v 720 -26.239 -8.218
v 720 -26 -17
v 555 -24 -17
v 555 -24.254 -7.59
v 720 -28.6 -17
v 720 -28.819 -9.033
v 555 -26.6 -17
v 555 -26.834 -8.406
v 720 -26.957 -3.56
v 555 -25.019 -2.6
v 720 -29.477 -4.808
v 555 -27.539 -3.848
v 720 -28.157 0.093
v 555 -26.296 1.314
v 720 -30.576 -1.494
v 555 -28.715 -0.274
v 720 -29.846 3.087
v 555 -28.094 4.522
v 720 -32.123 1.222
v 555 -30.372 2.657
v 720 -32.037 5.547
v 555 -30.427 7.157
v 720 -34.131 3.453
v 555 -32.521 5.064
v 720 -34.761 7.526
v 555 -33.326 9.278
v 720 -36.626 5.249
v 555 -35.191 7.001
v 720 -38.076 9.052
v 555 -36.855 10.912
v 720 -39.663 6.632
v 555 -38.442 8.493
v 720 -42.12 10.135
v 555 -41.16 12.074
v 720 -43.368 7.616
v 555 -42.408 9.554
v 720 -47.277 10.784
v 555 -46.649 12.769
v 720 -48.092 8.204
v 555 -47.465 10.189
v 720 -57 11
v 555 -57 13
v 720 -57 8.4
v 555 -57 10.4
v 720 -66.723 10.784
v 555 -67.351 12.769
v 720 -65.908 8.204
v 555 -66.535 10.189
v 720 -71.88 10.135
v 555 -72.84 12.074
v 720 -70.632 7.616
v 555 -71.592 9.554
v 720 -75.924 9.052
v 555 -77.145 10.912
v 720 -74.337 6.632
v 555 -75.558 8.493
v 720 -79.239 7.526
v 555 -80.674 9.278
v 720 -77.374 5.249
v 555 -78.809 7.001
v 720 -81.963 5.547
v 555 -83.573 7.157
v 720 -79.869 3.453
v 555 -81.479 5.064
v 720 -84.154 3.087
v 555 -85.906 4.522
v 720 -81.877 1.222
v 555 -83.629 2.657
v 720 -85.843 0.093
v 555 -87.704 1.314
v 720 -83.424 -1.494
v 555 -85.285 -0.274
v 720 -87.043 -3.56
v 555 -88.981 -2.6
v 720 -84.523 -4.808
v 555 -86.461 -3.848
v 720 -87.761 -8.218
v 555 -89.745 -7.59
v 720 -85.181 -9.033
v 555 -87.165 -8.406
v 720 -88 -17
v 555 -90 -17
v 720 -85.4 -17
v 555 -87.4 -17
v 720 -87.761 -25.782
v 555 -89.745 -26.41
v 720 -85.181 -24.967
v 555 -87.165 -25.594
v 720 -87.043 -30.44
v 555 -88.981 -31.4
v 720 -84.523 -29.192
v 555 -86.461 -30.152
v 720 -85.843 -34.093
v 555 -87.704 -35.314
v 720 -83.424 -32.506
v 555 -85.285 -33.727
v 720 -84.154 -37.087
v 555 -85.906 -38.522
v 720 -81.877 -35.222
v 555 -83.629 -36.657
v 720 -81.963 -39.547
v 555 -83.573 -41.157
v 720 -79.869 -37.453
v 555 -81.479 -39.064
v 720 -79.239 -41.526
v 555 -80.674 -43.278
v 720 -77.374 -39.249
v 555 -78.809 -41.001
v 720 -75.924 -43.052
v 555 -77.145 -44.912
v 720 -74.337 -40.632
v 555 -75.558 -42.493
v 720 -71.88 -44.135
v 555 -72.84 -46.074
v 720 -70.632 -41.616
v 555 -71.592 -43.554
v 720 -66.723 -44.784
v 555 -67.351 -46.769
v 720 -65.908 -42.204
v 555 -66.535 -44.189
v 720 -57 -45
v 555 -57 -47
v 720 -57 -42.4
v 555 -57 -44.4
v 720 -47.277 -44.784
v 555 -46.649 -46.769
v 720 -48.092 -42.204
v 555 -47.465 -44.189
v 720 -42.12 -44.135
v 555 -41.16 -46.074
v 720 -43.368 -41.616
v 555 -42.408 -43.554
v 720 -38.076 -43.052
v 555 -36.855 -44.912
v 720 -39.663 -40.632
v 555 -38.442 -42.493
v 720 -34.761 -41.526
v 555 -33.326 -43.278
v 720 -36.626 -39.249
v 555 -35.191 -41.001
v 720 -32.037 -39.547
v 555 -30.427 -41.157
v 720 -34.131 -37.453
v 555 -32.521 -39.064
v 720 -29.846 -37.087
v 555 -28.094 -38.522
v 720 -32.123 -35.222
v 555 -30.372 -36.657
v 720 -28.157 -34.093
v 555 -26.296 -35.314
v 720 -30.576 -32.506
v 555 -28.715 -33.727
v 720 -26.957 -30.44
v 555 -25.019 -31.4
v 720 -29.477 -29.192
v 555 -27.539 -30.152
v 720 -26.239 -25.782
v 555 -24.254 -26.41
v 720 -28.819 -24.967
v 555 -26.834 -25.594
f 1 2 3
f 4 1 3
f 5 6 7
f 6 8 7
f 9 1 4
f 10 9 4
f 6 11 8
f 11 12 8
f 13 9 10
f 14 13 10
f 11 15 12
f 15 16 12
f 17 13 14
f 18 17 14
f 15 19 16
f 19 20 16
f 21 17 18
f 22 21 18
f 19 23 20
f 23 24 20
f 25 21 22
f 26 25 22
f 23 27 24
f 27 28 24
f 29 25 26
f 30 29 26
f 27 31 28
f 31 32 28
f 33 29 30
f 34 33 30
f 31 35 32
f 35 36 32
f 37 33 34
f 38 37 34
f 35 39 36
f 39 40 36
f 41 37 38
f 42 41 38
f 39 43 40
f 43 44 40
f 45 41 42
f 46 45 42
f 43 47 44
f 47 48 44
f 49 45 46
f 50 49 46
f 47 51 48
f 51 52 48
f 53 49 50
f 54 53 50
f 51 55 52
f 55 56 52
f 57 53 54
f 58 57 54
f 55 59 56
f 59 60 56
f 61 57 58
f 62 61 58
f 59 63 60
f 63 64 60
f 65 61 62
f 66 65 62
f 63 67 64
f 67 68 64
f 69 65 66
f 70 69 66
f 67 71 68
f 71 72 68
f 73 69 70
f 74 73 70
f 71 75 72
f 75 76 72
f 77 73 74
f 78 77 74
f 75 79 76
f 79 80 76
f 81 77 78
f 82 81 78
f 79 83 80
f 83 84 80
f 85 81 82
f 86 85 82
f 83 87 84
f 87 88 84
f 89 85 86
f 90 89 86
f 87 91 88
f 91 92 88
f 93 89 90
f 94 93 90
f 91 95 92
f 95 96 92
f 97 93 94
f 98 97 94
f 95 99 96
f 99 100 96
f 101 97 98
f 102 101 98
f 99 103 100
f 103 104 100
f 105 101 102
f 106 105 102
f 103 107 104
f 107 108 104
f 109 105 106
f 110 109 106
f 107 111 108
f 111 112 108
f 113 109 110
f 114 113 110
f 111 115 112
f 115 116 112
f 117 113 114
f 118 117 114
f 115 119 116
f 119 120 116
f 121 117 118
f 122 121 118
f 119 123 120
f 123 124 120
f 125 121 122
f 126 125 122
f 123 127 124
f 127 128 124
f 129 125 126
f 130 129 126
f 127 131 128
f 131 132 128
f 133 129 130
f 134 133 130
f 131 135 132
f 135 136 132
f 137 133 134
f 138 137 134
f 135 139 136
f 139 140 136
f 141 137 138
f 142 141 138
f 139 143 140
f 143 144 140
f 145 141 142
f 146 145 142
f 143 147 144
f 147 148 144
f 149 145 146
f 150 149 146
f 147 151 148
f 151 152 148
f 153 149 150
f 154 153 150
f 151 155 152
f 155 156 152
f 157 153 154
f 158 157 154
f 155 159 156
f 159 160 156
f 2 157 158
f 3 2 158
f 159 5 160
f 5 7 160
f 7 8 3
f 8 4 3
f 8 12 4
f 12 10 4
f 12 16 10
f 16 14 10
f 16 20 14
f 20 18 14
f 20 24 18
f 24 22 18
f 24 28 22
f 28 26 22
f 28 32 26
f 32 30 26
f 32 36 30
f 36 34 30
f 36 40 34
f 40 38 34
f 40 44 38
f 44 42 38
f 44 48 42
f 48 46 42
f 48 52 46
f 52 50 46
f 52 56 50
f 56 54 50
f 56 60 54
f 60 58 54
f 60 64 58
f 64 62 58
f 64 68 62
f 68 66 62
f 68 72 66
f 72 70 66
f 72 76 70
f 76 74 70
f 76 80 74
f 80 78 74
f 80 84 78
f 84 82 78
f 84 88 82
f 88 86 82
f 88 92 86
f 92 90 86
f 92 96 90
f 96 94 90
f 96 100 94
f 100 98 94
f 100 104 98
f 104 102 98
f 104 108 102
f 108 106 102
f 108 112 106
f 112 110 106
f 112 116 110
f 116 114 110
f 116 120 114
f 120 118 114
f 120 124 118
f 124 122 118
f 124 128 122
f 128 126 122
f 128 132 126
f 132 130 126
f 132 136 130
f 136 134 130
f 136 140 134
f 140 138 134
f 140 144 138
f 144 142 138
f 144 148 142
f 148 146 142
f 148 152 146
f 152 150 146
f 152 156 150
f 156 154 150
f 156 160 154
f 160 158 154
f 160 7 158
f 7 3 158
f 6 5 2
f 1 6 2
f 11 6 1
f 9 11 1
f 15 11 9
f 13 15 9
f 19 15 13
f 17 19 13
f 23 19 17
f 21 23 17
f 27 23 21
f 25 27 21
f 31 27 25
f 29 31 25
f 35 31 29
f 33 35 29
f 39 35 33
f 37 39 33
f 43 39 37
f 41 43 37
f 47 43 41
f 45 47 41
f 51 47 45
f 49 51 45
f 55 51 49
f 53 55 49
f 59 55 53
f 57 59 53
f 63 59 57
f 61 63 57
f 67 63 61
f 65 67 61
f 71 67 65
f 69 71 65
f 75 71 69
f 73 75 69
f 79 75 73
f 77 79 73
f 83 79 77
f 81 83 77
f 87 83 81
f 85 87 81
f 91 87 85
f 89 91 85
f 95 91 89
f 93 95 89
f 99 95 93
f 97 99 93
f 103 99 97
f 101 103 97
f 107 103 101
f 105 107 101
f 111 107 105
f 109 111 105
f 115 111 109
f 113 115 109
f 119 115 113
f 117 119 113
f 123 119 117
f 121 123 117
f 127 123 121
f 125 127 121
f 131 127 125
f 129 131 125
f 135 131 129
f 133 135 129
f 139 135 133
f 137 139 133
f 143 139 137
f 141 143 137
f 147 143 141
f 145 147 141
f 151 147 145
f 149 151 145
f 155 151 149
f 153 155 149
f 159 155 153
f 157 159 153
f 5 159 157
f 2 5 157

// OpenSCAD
polyhedron(points=[[555.0, -24.0, -17.0], [555.0, -24.254517, -7.59023], [555.0, -25.018937, -2.600075], [555.0, -26.296386, 1.313674], [555.0, -28.094035, 4.522015], [555.0, -30.42691, 7.157355], [555.0, -33.325783, 9.27815], [555.0, -36.854958, 10.912376], [555.0, -41.160082, 12.073694], [555.0, -46.649252, 12.76862], [555.0, -57.0, 13.0], [555.0, -67.350748, 12.76862], [555.0, -72.839918, 12.073694], [555.0, -77.145042, 10.912376], [555.0, -80.674217, 9.27815], [555.0, -83.57309, 7.157355], [555.0, -85.905965, 4.522015], [555.0, -87.703614, 1.313674], [555.0, -88.981063, -2.600075], [555.0, -89.745483, -7.59023], [555.0, -90.0, -17.0], [555.0, -89.745483, -26.40977], [555.0, -88.981063, -31.399925], [555.0, -87.703614, -35.313674], [555.0, -85.905965, -38.522015], [555.0, -83.57309, -41.157355], [555.0, -80.674217, -43.27815], [555.0, -77.145042, -44.912376], [555.0, -72.839918, -46.073694], [555.0, -67.350748, -46.76862], [555.0, -57.0, -47.0], [555.0, -46.649252, -46.76862], [555.0, -41.160082, -46.073694], [555.0, -36.854958, -44.912376], [555.0, -33.325783, -43.27815], [555.0, -30.42691, -41.157355], [555.0, -28.094035, -38.522015], [555.0, -26.296386, -35.313674], [555.0, -25.018937, -31.399925], [555.0, -24.254517, -26.40977], [555.0, -26.6, -17.0], [555.0, -26.834465, -8.405743], [555.0, -27.538657, -3.848068], [555.0, -28.715459, -0.273511], [555.0, -30.371475, 2.656774], [555.0, -32.520547, 5.063718], [555.0, -35.191025, 7.00071], [555.0, -38.442144, 8.493303], [555.0, -42.408076, 9.553973], [555.0, -47.464766, 10.188673], [555.0, -57.0, 10.4], [555.0, -66.535234, 10.188673], [555.0, -71.591924, 9.553973], [555.0, -75.557856, 8.493303], [555.0, -78.808975, 7.00071], [555.0, -81.479453, 5.063718], [555.0, -83.628525, 2.656774], [555.0, -85.284541, -0.273511], [555.0, -86.461343, -3.848068], [555.0, -87.165535, -8.405743], [555.0, -87.4, -17.0], [555.0, -87.165535, -25.594257], [555.0, -86.461343, -30.151932], [555.0, -85.284541, -33.726489], [555.0, -83.628525, -36.656774], [555.0, -81.479453, -39.063718], [555.0, -78.808975, -41.00071], [555.0, -75.557856, -42.493303], [555.0, -71.591924, -43.553973], [555.0, -66.535234, -44.188673], [555.0, -57.0, -44.4], [555.0, -47.464766, -44.188673], [555.0, -42.408076, -43.553973], [555.0, -38.442144, -42.493303], [555.0, -35.191025, -41.00071], [555.0, -32.520547, -39.063718], [555.0, -30.371475, -36.656774], [555.0, -28.715459, -33.726489], [555.0, -27.538657, -30.151932], [555.0, -26.834465, -25.594257], [720.0, -26.0, -17.0], [720.0, -26.239092, -8.217548], [720.0, -26.957183, -3.56007], [720.0, -28.157211, 0.092763], [720.0, -29.845912, 3.087214], [720.0, -32.0374, 5.546865], [720.0, -34.760584, 7.526273], [720.0, -38.07587, 9.051551], [720.0, -42.120077, 10.135447], [720.0, -47.276571, 10.784046], [720.0, -57.0, 11.0], [720.0, -66.723429, 10.784046], [720.0, -71.879923, 10.135447], [720.0, -75.92413, 9.051551], [720.0, -79.239416, 7.526273], [720.0, -81.9626, 5.546865], [720.0, -84.154088, 3.087214], [720.0, -85.842789, 0.092763], [720.0, -87.042817, -3.56007], [720.0, -87.760908, -8.217548], [720.0, -88.0, -17.0], [720.0, -87.760908, -25.782452], [720.0, -87.042817, -30.43993], [720.0, -85.842789, -34.092763], [720.0, -84.154088, -37.087214], [720.0, -81.9626, -39.546865], [720.0, -79.239416, -41.526273], [720.0, -75.92413, -43.051551], [720.0, -71.879923, -44.135447], [720.0, -66.723429, -44.784046], [720.0, -57.0, -45.0], [720.0, -47.276571, -44.784046], [720.0, -42.120077, -44.135447], [720.0, -38.07587, -43.051551], [720.0, -34.760584, -41.526273], [720.0, -32.0374, -39.546865], [720.0, -29.845912, -37.087214], [720.0, -28.157211, -34.092763], [720.0, -26.957183, -30.43993], [720.0, -26.239092, -25.782452], [720.0, -28.6, -17.0], [720.0, -28.819039, -9.033061], [720.0, -29.476903, -4.808063], [720.0, -30.576284, -1.494423], [720.0, -32.123352, 1.221973], [720.0, -34.131037, 3.453227], [720.0, -36.625826, 5.248833], [720.0, -39.663055, 6.632478], [720.0, -43.368071, 7.615727], [720.0, -48.092084, 8.204099], [720.0, -57.0, 8.4], [720.0, -65.907916, 8.204099], [720.0, -70.631929, 7.615727], [720.0, -74.336945, 6.632478], [720.0, -77.374174, 5.248833], [720.0, -79.868963, 3.453227], [720.0, -81.876648, 1.221973], [720.0, -83.423716, -1.494423], [720.0, -84.523097, -4.808063], [720.0, -85.180961, -9.033061], [720.0, -85.4, -17.0], [720.0, -85.180961, -24.966939], [720.0, -84.523097, -29.191937], [720.0, -83.423716, -32.505577], [720.0, -81.876648, -35.221973], [720.0, -79.868963, -37.453227], [720.0, -77.374174, -39.248833], [720.0, -74.336945, -40.632478], [720.0, -70.631929, -41.615727], [720.0, -65.907916, -42.204099], [720.0, -57.0, -42.4], [720.0, -48.092084, -42.204099], [720.0, -43.368071, -41.615727], [720.0, -39.663055, -40.632478], [720.0, -36.625826, -39.248833], [720.0, -34.131037, -37.453227], [720.0, -32.123352, -35.221973], [720.0, -30.576284, -32.505577], [720.0, -29.476903, -29.191937], [720.0, -28.819039, -24.966939]], faces=[[0, 80, 81], [0, 81, 1], [40, 121, 120], [40, 41, 121], [1, 81, 82], [1, 82, 2], [41, 122, 121], [41, 42, 122], [2, 82, 83], [2, 83, 3], [42, 123, 122], [42, 43, 123], [3, 83, 84], [3, 84, 4], [43, 124, 123], [43, 44, 124], [4, 84, 85], [4, 85, 5], [44, 125, 124], [44, 45, 125], [5, 85, 86], [5, 86, 6], [45, 126, 125], [45, 46, 126], [6, 86, 87], [6, 87, 7], [46, 127, 126], [46, 47, 127], [7, 87, 88], [7, 88, 8], [47, 128, 127], [47, 48, 128], [8, 88, 89], [8, 89, 9], [48, 129, 128], [48, 49, 129], [9, 89, 90], [9, 90, 10], [49, 130, 129], [49, 50, 130], [10, 90, 91], [10, 91, 11], [50, 131, 130], [50, 51, 131], [11, 91, 92], [11, 92, 12], [51, 132, 131], [51, 52, 132], [12, 92, 93], [12, 93, 13], [52, 133, 132], [52, 53, 133], [13, 93, 94], [13, 94, 14], [53, 134, 133], [53, 54, 134], [14, 94, 95], [14, 95, 15], [54, 135, 134], [54, 55, 135], [15, 95, 96], [15, 96, 16], [55, 136, 135], [55, 56, 136], [16, 96, 97], [16, 97, 17], [56, 137, 136], [56, 57, 137], [17, 97, 98], [17, 98, 18], [57, 138, 137], [57, 58, 138], [18, 98, 99], [18, 99, 19], [58, 139, 138], [58, 59, 139], [19, 99, 100], [19, 100, 20], [59, 140, 139], [59, 60, 140], [20, 100, 101], [20, 101, 21], [60, 141, 140], [60, 61, 141], [21, 101, 102], [21, 102, 22], [61, 142, 141], [61, 62, 142], [22, 102, 103], [22, 103, 23], [62, 143, 142], [62, 63, 143], [23, 103, 104], [23, 104, 24], [63, 144, 143], [63, 64, 144], [24, 104, 105], [24, 105, 25], [64, 145, 144], [64, 65, 145], [25, 105, 106], [25, 106, 26], [65, 146, 145], [65, 66, 146], [26, 106, 107], [26, 107, 27], [66, 147, 146], [66, 67, 147], [27, 107, 108], [27, 108, 28], [67, 148, 147], [67, 68, 148], [28, 108, 109], [28, 109, 29], [68, 149, 148], [68, 69, 149], [29, 109, 110], [29, 110, 30], [69, 150, 149], [69, 70, 150], [30, 110, 111], [30, 111, 31], [70, 151, 150], [70, 71, 151], [31, 111, 112], [31, 112, 32], [71, 152, 151], [71, 72, 152], [32, 112, 113], [32, 113, 33], [72, 153, 152], [72, 73, 153], [33, 113, 114], [33, 114, 34], [73, 154, 153], [73, 74, 154], [34, 114, 115], [34, 115, 35], [74, 155, 154], [74, 75, 155], [35, 115, 116], [35, 116, 36], [75, 156, 155], [75, 76, 156], [36, 116, 117], [36, 117, 37], [76, 157, 156], [76, 77, 157], [37, 117, 118], [37, 118, 38], [77, 158, 157], [77, 78, 158], [38, 118, 119], [38, 119, 39], [78, 159, 158], [78, 79, 159], [39, 119, 80], [39, 80, 0], [79, 120, 159], [79, 40, 120], [0, 41, 40], [0, 1, 41], [1, 42, 41], [1, 2, 42], [2, 43, 42], [2, 3, 43], [3, 44, 43], [3, 4, 44], [4, 45, 44], [4, 5, 45], [5, 46, 45], [5, 6, 46], [6, 47, 46], [6, 7, 47], [7, 48, 47], [7, 8, 48], [8, 49, 48], [8, 9, 49], [9, 50, 49], [9, 10, 50], [10, 51, 50], [10, 11, 51], [11, 52, 51], [11, 12, 52], [12, 53, 52], [12, 13, 53], [13, 54, 53], [13, 14, 54], [14, 55, 54], [14, 15, 55], [15, 56, 55], [15, 16, 56], [16, 57, 56], [16, 17, 57], [17, 58, 57], [17, 18, 58], [18, 59, 58], [18, 19, 59], [19, 60, 59], [19, 20, 60], [20, 61, 60], [20, 21, 61], [21, 62, 61], [21, 22, 62], [22, 63, 62], [22, 23, 63], [23, 64, 63], [23, 24, 64], [24, 65, 64], [24, 25, 65], [25, 66, 65], [25, 26, 66], [26, 67, 66], [26, 27, 67], [27, 68, 67], [27, 28, 68], [28, 69, 68], [28, 29, 69], [29, 70, 69], [29, 30, 70], [30, 71, 70], [30, 31, 71], [31, 72, 71], [31, 32, 72], [32, 73, 72], [32, 33, 73], [33, 74, 73], [33, 34, 74], [34, 75, 74], [34, 35, 75], [35, 76, 75], [35, 36, 76], [36, 77, 76], [36, 37, 77], [37, 78, 77], [37, 38, 78], [38, 79, 78], [38, 39, 79], [39, 40, 79], [39, 0, 40], [80, 120, 121], [80, 121, 81], [81, 121, 122], [81, 122, 82], [82, 122, 123], [82, 123, 83], [83, 123, 124], [83, 124, 84], [84, 124, 125], [84, 125, 85], [85, 125, 126], [85, 126, 86], [86, 126, 127], [86, 127, 87], [87, 127, 128], [87, 128, 88], [88, 128, 129], [88, 129, 89], [89, 129, 130], [89, 130, 90], [90, 130, 131], [90, 131, 91], [91, 131, 132], [91, 132, 92], [92, 132, 133], [92, 133, 93], [93, 133, 134], [93, 134, 94], [94, 134, 135], [94, 135, 95], [95, 135, 136], [95, 136, 96], [96, 136, 137], [96, 137, 97], [97, 137, 138], [97, 138, 98], [98, 138, 139], [98, 139, 99], [99, 139, 140], [99, 140, 100], [100, 140, 141], [100, 141, 101], [101, 141, 142], [101, 142, 102], [102, 142, 143], [102, 143, 103], [103, 143, 144], [103, 144, 104], [104, 144, 145], [104, 145, 105], [105, 145, 146], [105, 146, 106], [106, 146, 147], [106, 147, 107], [107, 147, 148], [107, 148, 108], [108, 148, 149], [108, 149, 109], [109, 149, 150], [109, 150, 110], [110, 150, 151], [110, 151, 111], [111, 151, 152], [111, 152, 112], [112, 152, 153], [112, 153, 113], [113, 153, 154], [113, 154, 114], [114, 154, 155], [114, 155, 115], [115, 155, 156], [115, 156, 116], [116, 156, 157], [116, 157, 117], [117, 157, 158], [117, 158, 118], [118, 158, 159], [118, 159, 119], [119, 159, 120], [119, 120, 80]], convexity=30);
